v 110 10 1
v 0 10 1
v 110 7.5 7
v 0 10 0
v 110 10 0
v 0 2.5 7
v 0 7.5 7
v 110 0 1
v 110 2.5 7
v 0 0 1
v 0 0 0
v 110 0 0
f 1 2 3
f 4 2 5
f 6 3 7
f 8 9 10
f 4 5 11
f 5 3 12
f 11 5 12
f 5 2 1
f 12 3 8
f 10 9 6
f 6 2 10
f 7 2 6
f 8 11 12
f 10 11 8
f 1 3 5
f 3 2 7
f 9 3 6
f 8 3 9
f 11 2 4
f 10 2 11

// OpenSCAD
// Wheel stop: defines where the car stops in front of the barrier (repeatable camera view).
// Place it so the plate ends up on the stop line from nacrt/tlocrt.svg.
length = 110; $fn = 16;
module granicnik() {
    hull() {
        cube([length, 10, 1]);
        translate([0, 2.5, 0]) cube([length, 5, 7]);
    }
}

granicnik();
